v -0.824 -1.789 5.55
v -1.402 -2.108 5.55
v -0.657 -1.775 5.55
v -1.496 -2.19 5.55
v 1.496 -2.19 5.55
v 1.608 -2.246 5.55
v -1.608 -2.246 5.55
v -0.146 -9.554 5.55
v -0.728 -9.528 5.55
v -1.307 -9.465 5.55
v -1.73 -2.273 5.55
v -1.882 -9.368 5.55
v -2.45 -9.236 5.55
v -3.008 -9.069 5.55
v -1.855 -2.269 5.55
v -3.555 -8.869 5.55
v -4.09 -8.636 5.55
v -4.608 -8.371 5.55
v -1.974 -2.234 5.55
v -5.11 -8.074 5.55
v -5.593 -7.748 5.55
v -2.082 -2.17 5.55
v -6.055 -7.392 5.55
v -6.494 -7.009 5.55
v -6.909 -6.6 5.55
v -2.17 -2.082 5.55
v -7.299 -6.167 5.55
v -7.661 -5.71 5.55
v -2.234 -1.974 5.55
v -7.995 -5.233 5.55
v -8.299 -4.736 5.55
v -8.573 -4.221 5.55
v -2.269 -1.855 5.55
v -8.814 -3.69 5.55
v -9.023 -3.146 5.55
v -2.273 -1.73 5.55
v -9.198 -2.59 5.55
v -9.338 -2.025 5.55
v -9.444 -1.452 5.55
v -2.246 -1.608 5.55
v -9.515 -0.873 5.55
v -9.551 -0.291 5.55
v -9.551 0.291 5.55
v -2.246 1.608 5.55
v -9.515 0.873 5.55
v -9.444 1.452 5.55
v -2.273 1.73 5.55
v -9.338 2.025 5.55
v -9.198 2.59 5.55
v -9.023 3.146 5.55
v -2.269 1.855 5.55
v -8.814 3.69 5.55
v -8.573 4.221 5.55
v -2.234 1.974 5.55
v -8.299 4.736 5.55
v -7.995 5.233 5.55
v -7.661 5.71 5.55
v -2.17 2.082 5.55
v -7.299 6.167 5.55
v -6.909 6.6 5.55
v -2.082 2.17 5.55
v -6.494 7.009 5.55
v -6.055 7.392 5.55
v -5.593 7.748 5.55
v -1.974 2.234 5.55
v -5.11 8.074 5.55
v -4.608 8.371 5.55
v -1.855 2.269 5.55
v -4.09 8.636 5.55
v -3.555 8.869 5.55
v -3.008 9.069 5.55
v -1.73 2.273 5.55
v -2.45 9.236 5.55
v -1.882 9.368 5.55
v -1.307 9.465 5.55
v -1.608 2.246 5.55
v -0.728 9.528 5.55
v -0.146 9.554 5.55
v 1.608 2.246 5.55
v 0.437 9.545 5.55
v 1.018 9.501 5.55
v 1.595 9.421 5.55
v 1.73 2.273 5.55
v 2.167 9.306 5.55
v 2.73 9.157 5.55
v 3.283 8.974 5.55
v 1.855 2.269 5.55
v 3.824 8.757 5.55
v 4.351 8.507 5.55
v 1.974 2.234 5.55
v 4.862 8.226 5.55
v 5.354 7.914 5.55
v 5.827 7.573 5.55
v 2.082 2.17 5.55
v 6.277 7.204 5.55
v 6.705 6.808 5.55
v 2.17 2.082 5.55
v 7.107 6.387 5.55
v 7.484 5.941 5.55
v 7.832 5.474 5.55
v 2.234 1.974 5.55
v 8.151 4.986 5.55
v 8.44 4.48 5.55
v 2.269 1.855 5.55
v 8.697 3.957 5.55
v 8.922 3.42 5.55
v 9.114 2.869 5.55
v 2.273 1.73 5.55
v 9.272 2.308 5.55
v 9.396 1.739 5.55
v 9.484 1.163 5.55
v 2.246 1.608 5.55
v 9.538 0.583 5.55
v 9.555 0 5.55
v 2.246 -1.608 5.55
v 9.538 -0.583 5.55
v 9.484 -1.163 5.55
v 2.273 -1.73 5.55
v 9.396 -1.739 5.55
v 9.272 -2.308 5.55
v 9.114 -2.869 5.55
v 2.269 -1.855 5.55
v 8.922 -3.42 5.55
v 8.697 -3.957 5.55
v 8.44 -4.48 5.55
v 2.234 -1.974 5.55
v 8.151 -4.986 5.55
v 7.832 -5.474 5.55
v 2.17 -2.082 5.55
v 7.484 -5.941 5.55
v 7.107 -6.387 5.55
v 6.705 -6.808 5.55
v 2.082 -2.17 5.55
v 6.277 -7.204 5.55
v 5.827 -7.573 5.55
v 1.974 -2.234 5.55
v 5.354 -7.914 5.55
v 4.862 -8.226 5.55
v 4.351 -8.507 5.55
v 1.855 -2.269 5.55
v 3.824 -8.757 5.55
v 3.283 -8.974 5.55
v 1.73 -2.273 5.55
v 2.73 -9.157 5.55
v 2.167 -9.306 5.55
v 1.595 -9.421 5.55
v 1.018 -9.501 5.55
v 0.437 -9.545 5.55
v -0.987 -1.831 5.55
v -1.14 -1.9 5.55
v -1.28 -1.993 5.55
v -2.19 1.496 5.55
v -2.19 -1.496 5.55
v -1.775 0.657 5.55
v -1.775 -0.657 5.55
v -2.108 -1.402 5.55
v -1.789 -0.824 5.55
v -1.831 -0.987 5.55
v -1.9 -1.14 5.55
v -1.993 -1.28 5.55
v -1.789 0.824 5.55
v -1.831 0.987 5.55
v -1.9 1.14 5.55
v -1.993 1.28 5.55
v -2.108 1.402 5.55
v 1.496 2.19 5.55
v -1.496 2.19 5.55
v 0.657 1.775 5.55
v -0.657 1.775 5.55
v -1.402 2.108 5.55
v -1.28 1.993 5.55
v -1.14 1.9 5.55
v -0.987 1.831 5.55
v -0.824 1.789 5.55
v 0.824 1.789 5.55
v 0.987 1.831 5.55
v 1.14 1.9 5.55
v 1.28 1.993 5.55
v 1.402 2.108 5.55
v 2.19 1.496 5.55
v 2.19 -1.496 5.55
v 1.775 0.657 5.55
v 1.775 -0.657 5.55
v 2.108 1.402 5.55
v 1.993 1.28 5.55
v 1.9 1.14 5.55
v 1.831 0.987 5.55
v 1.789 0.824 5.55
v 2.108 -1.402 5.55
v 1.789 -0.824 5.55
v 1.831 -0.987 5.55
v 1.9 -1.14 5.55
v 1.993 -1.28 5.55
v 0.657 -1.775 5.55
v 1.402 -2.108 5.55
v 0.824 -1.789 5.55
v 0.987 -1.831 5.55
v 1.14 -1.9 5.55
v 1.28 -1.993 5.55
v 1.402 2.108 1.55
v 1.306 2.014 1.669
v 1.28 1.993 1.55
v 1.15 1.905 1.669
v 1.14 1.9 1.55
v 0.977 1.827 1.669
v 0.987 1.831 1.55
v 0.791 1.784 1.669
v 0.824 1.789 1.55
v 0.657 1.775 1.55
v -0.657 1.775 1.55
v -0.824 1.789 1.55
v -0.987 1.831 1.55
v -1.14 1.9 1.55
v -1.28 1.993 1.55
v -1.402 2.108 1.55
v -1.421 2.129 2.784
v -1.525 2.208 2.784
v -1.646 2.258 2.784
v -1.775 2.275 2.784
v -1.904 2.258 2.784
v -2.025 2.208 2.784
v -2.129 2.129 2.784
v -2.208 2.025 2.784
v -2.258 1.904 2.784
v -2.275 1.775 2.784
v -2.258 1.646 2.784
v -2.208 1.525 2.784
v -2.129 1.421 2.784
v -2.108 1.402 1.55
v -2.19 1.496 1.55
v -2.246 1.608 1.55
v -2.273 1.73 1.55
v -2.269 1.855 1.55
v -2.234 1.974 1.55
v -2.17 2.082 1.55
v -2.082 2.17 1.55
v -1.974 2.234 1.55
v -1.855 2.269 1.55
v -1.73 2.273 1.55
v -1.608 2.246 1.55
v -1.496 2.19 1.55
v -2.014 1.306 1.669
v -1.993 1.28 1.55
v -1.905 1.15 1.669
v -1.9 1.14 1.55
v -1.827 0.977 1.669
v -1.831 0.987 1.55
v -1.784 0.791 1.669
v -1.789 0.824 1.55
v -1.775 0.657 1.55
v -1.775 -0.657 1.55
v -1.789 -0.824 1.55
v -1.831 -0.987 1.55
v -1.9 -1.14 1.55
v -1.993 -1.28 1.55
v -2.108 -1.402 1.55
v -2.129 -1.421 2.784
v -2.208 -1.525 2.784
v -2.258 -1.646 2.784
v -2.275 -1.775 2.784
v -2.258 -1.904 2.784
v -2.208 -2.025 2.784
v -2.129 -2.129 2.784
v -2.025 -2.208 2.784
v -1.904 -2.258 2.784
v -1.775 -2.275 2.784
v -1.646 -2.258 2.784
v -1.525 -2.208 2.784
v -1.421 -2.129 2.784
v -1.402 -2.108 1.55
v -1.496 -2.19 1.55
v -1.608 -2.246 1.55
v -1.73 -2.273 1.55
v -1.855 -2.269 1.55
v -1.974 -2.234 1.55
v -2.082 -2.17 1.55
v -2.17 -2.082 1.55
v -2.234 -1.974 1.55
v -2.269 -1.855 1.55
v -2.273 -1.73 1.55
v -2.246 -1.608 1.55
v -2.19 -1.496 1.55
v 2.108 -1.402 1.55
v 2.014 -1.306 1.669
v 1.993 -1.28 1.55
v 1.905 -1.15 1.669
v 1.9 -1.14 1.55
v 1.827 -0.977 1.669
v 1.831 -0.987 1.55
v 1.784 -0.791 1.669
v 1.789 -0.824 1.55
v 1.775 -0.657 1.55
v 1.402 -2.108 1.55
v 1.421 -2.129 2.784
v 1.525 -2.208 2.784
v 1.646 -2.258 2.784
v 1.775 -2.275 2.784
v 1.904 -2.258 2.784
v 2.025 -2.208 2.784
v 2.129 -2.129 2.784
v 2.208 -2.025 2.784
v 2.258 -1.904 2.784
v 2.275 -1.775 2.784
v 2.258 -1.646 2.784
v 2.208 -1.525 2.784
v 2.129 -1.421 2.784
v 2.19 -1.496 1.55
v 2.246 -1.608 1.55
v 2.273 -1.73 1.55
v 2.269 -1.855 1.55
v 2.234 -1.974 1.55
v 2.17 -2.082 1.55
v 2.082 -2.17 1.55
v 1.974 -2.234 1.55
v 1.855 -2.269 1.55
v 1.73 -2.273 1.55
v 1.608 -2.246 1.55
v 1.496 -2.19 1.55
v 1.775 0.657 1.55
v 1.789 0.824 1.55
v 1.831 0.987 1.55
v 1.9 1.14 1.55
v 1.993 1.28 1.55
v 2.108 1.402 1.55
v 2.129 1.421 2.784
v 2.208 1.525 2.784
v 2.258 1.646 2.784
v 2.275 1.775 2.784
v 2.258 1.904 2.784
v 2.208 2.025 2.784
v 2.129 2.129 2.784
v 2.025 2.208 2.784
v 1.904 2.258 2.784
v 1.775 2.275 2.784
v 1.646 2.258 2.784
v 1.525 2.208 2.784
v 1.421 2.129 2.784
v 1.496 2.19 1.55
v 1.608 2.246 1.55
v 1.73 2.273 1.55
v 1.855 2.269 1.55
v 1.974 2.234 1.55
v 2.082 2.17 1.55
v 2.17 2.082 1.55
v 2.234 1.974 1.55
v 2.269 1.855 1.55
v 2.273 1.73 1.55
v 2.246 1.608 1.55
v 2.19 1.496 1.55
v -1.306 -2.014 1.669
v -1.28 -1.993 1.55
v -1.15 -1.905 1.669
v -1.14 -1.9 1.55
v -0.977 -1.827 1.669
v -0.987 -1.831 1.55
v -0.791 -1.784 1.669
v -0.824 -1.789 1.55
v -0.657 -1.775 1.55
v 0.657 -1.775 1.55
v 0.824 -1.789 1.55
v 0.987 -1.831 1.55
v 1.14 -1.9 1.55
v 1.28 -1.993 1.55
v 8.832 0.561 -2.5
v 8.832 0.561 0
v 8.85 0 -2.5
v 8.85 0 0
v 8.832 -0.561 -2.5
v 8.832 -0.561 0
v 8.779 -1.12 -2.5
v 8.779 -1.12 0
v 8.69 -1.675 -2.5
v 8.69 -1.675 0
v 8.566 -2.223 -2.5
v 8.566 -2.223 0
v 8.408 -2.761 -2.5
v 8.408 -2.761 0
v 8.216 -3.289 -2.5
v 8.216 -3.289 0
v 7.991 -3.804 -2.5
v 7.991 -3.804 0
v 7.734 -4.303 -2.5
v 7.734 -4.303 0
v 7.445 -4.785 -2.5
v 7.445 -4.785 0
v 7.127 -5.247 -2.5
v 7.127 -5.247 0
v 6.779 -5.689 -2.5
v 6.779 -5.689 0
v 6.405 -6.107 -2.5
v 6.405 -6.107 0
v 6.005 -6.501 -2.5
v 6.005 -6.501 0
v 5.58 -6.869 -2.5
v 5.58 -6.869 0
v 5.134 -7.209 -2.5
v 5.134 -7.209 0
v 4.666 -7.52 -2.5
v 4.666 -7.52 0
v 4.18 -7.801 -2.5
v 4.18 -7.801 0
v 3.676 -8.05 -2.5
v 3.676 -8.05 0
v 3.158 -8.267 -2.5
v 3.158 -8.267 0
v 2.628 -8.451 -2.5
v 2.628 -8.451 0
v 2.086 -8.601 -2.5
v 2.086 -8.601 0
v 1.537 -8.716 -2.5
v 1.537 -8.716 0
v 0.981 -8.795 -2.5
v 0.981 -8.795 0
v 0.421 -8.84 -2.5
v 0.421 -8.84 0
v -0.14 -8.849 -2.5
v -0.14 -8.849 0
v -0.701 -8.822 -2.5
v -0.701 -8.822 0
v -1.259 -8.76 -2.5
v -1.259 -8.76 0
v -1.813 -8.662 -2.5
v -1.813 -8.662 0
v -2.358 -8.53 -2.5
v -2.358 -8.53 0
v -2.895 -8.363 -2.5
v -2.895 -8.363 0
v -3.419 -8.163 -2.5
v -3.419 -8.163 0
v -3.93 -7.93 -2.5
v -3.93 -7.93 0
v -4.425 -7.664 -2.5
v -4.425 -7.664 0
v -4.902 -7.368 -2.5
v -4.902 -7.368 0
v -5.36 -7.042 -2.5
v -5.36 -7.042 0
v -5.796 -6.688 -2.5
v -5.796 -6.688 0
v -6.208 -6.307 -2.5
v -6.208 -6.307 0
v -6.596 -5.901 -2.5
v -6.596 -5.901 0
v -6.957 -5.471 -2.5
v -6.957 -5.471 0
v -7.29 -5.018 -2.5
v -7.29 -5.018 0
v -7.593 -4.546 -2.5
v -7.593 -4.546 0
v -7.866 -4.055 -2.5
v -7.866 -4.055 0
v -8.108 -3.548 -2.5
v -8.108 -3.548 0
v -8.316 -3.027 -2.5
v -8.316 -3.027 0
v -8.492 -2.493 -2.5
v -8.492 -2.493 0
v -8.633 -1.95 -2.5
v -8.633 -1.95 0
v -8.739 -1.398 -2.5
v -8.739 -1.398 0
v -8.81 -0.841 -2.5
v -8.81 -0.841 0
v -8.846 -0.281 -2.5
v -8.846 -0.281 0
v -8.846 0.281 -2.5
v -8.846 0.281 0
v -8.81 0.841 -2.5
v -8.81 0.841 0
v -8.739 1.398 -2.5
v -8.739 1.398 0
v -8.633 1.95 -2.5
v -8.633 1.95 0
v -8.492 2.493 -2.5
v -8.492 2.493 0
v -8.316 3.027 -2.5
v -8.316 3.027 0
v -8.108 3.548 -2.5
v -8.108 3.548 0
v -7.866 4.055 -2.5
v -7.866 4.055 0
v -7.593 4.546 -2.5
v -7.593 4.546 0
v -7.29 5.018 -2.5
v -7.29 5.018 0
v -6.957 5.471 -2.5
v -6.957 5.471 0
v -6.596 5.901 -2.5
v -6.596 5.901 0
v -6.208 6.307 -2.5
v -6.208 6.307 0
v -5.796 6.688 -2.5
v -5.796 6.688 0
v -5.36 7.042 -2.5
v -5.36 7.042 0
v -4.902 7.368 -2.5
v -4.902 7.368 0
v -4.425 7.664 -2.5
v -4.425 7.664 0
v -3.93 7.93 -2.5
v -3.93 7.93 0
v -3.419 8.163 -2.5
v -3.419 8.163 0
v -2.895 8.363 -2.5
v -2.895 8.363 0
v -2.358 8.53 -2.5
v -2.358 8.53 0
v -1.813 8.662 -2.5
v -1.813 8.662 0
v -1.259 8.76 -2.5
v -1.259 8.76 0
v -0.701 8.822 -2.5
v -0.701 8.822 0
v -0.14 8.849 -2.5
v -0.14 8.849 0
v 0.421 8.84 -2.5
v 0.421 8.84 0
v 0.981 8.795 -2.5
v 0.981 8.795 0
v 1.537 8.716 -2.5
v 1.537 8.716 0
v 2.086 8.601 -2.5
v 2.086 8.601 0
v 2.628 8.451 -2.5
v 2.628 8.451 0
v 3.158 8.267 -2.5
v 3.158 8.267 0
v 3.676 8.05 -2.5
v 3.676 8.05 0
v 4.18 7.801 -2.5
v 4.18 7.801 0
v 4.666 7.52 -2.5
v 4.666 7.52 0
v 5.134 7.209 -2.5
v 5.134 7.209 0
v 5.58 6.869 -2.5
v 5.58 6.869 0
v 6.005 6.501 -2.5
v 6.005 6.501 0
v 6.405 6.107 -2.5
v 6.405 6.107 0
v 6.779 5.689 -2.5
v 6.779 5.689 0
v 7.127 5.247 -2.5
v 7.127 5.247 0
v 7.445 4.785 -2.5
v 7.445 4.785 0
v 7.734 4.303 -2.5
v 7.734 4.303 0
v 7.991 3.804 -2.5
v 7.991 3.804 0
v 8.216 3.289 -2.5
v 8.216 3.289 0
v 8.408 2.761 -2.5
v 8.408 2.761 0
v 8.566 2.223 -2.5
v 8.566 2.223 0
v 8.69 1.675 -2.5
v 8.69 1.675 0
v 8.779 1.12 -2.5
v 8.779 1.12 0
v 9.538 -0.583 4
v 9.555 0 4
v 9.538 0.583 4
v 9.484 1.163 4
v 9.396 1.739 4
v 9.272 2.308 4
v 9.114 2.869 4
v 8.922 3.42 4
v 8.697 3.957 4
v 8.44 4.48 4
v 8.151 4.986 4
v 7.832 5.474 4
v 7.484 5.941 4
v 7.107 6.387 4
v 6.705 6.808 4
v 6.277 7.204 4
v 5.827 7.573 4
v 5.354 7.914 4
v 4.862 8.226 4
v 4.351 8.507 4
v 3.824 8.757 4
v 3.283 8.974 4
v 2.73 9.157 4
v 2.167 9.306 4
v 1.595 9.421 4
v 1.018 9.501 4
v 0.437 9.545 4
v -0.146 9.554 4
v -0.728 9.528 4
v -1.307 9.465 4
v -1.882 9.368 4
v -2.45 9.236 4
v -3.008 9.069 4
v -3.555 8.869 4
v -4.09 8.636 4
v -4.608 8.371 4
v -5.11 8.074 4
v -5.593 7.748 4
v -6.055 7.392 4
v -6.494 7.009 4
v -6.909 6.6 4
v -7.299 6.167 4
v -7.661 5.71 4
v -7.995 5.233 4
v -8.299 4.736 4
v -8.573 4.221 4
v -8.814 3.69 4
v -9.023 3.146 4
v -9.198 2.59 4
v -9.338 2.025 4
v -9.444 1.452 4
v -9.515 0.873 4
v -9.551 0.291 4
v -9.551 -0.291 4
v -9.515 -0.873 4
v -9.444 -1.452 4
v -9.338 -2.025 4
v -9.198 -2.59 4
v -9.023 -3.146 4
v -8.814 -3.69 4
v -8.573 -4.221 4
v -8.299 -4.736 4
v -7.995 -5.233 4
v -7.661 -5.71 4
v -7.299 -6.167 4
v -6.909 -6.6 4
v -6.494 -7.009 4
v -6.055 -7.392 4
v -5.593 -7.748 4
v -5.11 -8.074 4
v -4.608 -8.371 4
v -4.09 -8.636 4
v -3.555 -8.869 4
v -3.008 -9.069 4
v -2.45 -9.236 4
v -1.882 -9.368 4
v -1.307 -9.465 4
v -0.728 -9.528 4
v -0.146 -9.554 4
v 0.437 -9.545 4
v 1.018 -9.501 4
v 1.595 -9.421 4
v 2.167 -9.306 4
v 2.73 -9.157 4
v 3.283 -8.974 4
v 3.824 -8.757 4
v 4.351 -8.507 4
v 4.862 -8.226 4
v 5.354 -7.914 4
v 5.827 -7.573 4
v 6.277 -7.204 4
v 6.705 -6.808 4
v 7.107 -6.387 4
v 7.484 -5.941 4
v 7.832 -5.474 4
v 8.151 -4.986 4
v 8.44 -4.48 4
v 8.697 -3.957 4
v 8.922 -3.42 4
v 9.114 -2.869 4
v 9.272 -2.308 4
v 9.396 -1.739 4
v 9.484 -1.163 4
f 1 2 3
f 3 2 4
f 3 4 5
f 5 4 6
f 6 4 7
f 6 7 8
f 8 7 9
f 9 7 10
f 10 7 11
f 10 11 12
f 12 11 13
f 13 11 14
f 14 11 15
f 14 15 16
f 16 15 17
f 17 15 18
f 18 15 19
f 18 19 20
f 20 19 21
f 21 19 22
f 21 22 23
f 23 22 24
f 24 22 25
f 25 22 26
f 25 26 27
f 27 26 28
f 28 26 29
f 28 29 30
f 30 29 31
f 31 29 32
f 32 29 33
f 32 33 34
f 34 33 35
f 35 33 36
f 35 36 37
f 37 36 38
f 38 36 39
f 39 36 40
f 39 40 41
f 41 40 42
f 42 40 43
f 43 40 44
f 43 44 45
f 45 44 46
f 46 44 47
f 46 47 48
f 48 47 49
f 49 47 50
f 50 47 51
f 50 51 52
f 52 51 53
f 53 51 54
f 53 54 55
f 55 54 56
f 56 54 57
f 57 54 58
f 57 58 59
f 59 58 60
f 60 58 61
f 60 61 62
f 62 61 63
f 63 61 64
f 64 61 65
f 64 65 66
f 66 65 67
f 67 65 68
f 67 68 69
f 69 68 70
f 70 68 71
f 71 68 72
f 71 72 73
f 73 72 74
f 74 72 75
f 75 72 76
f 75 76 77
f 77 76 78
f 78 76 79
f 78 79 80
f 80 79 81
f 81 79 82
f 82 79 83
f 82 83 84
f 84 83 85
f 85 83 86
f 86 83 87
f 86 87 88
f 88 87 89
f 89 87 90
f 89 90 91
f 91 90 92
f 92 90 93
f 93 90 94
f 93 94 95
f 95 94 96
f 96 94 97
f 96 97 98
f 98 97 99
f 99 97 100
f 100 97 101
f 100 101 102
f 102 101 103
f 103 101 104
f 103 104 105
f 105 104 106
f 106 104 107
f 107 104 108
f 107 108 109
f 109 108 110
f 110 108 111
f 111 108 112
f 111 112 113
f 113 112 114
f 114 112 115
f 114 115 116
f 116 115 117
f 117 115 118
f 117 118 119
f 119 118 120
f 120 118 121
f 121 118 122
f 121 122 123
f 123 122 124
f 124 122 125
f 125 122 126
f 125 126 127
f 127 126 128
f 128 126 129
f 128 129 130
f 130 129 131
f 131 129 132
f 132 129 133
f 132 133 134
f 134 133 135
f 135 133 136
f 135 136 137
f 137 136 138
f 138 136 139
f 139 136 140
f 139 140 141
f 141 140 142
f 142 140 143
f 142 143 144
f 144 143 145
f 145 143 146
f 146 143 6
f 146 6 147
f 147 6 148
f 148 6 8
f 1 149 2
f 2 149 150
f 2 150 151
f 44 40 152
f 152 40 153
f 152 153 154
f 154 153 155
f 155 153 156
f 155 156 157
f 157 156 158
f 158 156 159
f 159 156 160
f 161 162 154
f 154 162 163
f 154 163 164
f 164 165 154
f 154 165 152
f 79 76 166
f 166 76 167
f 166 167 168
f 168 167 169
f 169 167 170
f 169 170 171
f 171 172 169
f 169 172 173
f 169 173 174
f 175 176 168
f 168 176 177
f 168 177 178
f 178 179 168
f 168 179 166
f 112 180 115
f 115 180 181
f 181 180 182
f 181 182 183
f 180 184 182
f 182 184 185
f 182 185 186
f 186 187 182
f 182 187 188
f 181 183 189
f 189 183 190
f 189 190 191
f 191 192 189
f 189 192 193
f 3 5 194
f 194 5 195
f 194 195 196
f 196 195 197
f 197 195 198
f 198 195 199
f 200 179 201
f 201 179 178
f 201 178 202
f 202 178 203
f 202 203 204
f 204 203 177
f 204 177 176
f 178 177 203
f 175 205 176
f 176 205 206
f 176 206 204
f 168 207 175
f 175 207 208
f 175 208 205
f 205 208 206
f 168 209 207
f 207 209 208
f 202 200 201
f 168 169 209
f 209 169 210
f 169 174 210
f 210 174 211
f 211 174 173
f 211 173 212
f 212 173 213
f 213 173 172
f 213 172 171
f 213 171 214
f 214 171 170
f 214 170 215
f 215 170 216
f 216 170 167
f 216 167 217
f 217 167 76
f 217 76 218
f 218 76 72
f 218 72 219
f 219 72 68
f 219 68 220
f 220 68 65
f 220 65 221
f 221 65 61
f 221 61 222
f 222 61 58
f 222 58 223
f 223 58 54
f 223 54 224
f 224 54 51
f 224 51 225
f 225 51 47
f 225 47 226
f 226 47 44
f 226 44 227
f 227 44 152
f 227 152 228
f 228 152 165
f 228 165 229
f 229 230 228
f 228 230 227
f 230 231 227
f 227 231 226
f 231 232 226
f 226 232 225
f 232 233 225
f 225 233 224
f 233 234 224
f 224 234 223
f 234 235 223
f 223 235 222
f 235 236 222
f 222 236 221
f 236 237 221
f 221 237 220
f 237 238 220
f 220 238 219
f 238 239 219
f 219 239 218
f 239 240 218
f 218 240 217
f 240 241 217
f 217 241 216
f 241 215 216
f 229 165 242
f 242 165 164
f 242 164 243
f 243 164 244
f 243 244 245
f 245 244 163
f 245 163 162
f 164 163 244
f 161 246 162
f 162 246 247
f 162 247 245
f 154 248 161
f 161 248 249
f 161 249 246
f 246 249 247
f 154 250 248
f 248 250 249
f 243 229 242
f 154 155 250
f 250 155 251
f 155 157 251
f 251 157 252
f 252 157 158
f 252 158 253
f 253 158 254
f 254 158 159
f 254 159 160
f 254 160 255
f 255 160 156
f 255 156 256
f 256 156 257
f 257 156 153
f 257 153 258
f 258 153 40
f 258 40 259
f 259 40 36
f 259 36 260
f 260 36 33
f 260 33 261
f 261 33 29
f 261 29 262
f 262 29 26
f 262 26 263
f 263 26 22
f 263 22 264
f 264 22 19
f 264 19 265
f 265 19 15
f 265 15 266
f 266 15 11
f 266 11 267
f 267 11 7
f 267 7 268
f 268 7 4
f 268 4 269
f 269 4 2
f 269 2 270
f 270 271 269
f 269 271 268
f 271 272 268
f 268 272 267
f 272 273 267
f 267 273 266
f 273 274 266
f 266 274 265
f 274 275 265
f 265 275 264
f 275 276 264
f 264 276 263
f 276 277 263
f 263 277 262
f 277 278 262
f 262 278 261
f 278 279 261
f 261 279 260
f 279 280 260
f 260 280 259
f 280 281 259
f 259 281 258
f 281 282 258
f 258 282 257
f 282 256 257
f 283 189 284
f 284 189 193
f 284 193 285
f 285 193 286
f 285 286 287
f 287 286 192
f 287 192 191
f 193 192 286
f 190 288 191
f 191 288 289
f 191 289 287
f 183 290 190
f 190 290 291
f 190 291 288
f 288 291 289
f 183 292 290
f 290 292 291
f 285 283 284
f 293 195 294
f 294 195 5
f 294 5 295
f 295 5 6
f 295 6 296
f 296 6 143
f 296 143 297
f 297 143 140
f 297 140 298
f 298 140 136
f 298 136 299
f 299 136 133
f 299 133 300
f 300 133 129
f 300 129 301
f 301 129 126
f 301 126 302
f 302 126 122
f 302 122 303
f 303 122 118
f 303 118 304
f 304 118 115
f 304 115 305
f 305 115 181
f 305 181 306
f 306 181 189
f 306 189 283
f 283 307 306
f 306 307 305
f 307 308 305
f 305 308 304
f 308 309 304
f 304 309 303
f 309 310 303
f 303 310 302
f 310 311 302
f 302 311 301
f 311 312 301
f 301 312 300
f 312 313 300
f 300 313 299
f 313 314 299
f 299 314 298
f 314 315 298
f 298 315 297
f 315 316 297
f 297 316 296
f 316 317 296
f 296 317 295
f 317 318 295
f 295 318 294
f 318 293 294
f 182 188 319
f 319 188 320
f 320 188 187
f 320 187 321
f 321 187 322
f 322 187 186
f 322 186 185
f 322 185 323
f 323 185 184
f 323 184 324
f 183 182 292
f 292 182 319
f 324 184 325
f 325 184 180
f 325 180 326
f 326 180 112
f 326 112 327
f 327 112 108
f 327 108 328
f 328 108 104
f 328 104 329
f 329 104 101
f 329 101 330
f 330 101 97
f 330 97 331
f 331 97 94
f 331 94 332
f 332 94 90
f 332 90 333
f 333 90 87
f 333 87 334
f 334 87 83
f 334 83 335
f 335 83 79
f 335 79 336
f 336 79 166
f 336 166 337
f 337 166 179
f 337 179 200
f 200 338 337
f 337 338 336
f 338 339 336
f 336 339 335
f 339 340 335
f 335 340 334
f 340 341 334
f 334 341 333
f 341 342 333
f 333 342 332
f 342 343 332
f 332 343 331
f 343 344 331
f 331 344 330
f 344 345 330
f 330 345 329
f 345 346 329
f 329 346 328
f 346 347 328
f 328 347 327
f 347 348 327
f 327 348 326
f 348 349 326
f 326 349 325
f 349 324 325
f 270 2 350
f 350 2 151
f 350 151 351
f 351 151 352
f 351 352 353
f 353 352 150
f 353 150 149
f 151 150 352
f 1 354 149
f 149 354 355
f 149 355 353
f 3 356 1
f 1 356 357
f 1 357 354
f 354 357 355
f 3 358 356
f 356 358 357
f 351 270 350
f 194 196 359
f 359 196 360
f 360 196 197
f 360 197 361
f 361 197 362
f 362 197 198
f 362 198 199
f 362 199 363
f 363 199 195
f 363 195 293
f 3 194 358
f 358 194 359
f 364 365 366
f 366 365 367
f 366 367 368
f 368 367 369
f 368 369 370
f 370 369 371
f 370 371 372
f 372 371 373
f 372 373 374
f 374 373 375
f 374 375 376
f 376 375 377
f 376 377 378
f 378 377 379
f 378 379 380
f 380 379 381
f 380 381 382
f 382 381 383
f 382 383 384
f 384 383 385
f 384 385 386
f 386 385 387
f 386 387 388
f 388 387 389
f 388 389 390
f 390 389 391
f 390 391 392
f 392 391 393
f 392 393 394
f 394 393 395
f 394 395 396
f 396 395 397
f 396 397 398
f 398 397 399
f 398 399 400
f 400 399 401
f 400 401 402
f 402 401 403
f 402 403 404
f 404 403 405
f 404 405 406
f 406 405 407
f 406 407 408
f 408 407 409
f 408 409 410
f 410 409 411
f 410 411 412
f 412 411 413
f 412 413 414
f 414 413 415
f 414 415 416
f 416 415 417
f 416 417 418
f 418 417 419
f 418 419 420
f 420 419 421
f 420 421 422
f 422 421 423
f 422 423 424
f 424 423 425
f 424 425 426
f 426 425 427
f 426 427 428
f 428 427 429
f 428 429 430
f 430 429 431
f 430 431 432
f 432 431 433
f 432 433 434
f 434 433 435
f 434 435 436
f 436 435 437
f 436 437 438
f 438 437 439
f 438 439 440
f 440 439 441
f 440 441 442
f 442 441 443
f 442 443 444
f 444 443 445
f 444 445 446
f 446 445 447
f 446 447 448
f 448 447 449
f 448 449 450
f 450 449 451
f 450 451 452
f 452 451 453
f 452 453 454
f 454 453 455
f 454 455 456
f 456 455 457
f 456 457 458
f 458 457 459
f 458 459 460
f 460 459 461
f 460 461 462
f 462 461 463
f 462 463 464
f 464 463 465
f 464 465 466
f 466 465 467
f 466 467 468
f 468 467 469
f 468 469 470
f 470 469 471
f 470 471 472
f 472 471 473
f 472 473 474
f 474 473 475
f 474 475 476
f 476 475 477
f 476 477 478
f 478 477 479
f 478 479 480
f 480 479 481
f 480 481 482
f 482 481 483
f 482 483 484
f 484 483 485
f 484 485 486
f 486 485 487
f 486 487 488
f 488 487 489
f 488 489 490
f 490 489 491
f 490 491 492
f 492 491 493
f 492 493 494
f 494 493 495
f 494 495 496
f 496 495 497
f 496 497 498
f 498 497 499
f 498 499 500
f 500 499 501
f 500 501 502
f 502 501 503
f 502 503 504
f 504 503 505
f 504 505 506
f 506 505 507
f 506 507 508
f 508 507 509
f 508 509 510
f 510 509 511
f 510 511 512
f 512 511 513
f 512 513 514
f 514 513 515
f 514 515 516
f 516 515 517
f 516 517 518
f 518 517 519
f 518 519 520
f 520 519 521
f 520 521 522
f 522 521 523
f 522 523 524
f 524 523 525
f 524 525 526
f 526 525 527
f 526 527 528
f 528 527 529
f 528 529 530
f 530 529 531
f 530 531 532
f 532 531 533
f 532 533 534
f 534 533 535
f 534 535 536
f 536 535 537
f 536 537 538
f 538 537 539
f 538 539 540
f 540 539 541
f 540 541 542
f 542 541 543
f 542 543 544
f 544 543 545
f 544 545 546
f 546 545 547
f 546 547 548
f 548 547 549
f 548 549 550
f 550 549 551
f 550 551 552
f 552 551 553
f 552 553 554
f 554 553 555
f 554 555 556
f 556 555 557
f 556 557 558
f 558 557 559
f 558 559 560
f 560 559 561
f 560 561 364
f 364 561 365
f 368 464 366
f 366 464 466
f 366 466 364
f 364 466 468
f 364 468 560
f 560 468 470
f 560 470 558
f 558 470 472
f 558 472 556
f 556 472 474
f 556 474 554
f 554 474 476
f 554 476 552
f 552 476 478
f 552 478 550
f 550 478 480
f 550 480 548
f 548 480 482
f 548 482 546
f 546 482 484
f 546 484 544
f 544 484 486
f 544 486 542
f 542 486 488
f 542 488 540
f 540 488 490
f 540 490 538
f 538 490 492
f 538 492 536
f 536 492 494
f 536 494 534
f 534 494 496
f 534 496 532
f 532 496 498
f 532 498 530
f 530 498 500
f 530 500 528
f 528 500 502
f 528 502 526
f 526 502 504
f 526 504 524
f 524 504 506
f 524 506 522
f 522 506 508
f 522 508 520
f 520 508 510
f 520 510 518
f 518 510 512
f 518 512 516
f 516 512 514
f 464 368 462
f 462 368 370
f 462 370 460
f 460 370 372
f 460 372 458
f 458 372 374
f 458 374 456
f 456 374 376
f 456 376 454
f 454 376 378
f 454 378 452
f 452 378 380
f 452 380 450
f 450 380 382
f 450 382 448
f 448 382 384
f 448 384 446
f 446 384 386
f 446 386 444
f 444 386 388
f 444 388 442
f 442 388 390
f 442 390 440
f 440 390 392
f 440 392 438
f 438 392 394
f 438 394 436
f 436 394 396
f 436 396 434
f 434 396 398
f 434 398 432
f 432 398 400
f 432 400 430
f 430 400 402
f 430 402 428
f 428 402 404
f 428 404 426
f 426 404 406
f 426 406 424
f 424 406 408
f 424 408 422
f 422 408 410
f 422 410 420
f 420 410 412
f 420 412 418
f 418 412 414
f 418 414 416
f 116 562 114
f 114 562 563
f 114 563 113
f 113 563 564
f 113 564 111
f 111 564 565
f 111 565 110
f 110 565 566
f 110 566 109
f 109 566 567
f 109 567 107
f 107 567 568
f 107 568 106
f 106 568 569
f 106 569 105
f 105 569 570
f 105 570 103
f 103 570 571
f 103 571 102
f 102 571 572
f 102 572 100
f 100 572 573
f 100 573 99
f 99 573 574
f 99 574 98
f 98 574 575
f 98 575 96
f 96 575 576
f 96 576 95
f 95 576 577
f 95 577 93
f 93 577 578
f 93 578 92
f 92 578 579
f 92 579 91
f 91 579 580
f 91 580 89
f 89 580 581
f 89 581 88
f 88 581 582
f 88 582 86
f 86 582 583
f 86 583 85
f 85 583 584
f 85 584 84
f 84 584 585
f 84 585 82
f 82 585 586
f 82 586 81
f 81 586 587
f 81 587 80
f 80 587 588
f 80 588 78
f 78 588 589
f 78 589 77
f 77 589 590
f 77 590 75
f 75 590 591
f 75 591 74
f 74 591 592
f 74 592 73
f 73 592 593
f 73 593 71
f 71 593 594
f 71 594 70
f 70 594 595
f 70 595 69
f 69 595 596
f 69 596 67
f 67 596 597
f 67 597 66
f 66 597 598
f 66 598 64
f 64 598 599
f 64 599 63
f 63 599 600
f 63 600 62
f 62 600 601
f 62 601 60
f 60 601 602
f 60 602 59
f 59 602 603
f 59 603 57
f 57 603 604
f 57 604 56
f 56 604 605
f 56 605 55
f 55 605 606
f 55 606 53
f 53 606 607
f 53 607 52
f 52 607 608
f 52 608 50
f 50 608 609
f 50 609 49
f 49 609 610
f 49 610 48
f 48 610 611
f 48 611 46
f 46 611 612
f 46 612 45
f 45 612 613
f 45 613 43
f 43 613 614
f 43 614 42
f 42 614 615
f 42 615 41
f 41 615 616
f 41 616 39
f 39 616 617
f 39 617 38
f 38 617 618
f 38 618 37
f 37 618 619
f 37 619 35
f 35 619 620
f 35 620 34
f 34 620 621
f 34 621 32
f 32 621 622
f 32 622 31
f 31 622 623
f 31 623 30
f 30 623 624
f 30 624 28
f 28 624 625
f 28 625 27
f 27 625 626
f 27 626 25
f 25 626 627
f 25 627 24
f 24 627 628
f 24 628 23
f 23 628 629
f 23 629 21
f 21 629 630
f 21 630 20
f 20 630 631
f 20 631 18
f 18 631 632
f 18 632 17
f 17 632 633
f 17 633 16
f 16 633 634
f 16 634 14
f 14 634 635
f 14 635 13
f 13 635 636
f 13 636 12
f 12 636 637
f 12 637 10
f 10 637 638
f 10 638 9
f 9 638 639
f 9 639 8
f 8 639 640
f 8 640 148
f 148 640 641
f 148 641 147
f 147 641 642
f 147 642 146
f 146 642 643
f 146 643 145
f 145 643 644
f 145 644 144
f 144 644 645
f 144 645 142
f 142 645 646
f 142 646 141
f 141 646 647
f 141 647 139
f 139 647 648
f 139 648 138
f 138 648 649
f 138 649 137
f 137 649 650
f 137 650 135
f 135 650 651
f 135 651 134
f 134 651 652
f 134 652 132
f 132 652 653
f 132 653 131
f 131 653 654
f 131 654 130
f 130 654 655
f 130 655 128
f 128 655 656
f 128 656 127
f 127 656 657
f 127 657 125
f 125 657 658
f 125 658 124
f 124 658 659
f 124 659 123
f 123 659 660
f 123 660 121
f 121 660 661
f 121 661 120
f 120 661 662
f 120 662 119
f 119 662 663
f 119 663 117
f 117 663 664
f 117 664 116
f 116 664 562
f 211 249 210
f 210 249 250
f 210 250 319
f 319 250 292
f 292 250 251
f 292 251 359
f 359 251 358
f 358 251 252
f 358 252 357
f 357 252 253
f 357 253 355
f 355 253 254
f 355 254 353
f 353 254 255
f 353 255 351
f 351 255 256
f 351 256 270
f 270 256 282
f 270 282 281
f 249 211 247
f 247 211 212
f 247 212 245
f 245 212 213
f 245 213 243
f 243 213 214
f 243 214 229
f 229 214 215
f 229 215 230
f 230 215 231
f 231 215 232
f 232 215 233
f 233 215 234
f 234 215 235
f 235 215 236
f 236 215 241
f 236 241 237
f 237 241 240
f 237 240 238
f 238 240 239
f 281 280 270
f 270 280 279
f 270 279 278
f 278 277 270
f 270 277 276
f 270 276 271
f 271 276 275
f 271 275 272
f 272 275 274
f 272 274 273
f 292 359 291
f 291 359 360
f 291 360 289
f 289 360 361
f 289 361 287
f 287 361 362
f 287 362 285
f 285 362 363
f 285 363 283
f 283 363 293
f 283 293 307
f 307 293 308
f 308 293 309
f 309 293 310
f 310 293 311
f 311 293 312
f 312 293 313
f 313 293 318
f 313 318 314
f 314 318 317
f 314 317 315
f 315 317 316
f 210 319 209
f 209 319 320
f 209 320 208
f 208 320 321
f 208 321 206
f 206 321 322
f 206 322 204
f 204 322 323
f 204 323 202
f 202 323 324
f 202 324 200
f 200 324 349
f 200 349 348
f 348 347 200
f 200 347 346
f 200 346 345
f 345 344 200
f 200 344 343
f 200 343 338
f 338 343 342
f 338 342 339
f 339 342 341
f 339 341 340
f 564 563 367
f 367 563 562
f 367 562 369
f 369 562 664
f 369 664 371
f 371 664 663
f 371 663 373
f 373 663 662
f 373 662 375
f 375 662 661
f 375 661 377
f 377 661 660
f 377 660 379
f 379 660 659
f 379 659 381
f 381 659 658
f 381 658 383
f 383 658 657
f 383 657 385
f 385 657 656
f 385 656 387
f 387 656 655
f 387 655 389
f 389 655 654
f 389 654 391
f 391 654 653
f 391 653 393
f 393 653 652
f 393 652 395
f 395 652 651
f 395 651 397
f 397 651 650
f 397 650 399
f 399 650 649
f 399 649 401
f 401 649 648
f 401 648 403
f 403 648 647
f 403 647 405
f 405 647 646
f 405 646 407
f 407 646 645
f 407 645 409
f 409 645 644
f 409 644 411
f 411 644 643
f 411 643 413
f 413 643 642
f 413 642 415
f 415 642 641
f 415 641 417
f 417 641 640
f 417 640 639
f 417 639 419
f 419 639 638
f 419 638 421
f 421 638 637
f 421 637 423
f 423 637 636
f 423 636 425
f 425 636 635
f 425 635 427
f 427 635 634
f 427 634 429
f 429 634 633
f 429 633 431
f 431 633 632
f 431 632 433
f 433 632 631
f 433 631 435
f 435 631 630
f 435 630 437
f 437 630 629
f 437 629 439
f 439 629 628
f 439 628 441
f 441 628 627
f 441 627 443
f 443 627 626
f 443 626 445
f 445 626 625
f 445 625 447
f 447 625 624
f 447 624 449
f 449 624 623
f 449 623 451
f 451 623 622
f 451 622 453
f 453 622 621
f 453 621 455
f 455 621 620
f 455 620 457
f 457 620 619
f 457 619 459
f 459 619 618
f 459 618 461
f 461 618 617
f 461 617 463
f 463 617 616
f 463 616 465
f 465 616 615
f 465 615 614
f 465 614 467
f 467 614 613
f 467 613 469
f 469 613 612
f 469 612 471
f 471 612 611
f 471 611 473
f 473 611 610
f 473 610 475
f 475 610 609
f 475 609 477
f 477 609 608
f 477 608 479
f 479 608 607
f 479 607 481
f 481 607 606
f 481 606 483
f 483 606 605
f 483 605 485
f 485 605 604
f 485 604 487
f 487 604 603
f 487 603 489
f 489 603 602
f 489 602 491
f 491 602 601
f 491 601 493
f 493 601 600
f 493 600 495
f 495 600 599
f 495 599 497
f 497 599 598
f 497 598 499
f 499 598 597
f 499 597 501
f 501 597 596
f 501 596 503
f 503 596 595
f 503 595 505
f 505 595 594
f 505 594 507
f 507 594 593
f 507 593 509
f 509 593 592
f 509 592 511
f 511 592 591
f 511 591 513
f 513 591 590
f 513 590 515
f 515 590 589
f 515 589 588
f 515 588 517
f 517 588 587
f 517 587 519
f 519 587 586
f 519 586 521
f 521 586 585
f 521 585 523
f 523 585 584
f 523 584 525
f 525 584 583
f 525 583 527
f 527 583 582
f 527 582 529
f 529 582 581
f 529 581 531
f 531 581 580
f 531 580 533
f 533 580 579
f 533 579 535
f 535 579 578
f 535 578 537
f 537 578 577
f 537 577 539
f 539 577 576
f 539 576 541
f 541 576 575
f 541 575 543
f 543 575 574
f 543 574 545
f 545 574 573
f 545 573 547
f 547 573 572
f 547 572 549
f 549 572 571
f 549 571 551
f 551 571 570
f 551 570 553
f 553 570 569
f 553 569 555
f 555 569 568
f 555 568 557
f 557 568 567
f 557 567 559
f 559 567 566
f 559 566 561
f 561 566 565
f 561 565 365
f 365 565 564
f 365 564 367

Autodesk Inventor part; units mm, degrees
ref_plane "YZ Plane" through (0, 0, 0) normal (1, 0, 0) x (0, 1, 0)
ref_plane "XZ Plane" through (0, 0, 0) normal (0, 1, 0) x (-1, 0, 0)
sketch "Esquisse1" plane through (0, 0, 0) normal (0, 0, 1) x (1, 0, 0)
  circle A0 centre (0, 0) radius 8.85
  dimension "d0" = 17.7
extrude "Extrusion1" add sketch "Esquisse1" along normal blind 7.05 draft 10
sketch "Esquisse2" plane through (0, 0, 7.05) normal (0, 0, 1) x (1, 0, 0)
  line L0 (1.775, -1.775) -> (-1.775, -1.775)
  line L1 (-1.775, -1.775) -> (-1.775, 1.775)
  line L2 (-1.775, 1.775) -> (1.775, 1.775)
  line L3 (1.775, 1.775) -> (1.775, -1.775)
  line L4 (1.775, -1.775) -> (-1.775, 1.775) construction
  line L5 (-1.775, -1.775) -> (1.775, 1.775) construction
  point P0 (0, 0)
  dimension "d3" = 3.55
  dimension "d4" = 3.55
extrude "Extrusion2" cut sketch "Esquisse2" against normal blind 5.5
ref_plane "Plan de construction1" through (0, 0, 4) normal (0, 0, -1) x (-1, 0, 0)
sketch "Esquisse3" plane through (0, 0, 4) normal (0, 0, -1) x (-1, 0, 0)
  circle A0 centre (0, 0) radius 9.5553 projected
  circle A1 centre (0, 0) radius 13.8909
  line L0 (-1.775, 1.775) -> (-1.775, -1.775) projected
  line L1 (-1.775, -1.775) -> (1.775, -1.775) projected
  line L2 (1.775, -1.775) -> (1.775, 1.775) projected
  line L3 (1.775, 1.775) -> (-1.775, 1.775) projected
extrude "Extrusion3" cut sketch "Esquisse3" against normal through all contours A1
sketch "Esquisse4" plane through (0, 0, 0) normal (0, 0, -1) x (-1, 0, 0)
  circle A0 centre (0, 0) radius 8.85 projected
extrude "Extrusion4" add sketch "Esquisse4" along normal blind 2.5
sketch "Esquisse5" plane through (0, 0, -2.5) normal (0, 0, -1) x (-1, 0, 0)
  line L0 (2.6892, 4.9729) -> (2.6892, -4.9729) construction
  line L1 (2.6892, -4.9729) -> (-2.6892, -4.9729) construction
  line L2 (-2.6892, -4.9729) -> (-2.6892, 4.9729) construction
  line L3 (-2.6892, 4.9729) -> (2.6892, 4.9729) construction
  line L4 (13.3774, 0) -> (-13.3774, 0) projected
  line L5 (0, -13.3774) -> (0, 13.3774) projected
  point P0 (0, 0)
  point P1 (-3.9441, 0)
  point P2 (0, -4.9729)
  point P3 (-2.6892, 0)
  point P4 (0, -4.9729)
extrude "Extrusion5" [suppressed]
sketch "Esquisse6" plane through (0, 0, 7.05) normal (0, 0, 1) x (1, 0, 0)
  line L0 (-1.775, 1.775) -> (1.775, 1.775) projected
  line L1 (1.775, -1.775) -> (-1.775, -1.775) projected
  point P0 (0, 0)
hole "Perçage1" at (-1.775, 1.775, 7.05) at (1.775, 1.775, 7.05) at (-1.775, -1.775, 7.05) at (1.775, -1.775, 7.05) direction (0, 0, -1) diameter 1 depth 5.5
fillet "Congé1" radius 1 8 edges at (-1.275, 1.775, 4.3) (1.275, 1.775, 4.3) (1.775, 1.275, 4.3) (1.775, -1.275, 4.3) (1.275, -1.775, 4.3) (-1.275, -1.775, 4.3) (-1.775, -1.275, 4.3) (-1.775, 1.275, 4.3)
sketch "Esquisse8" plane through (0, 0, 7.05) normal (0, 0, 1) x (1, 0, 0)
  circle A0 centre (0, 0) radius 10
  dimension "d29" = 20
extrude "Extrusion7" cut sketch "Esquisse8" against normal blind 1.5
sketch "Esquisse7" plane through (0, 0, 7.05) normal (0, 0, 1) x (1, 0, 0)
  arc A0 (3.0373, 1.3601) -> (3.0546, -1.3184) centre (5.8249, 0.0388) ccw construction
  arc A1 (2.6759, 1.5314) -> (2.6954, -1.4944) centre (5.8249, 0.0388) ccw
  arc A2 (3.3988, 1.1887) -> (3.4138, -1.1424) centre (5.8249, 0.0388) ccw
  arc A3 (3.3988, 1.1887) -> (2.6759, 1.5314) centre (3.0373, 1.3601) ccw
  arc A4 (2.6954, -1.4944) -> (3.4138, -1.1424) centre (3.0546, -1.3184) ccw
  point P0 (0, 0)
  dimension "d23" = 0.8
equation "\"d3\" = d4"
properties part number "Power_Button"
